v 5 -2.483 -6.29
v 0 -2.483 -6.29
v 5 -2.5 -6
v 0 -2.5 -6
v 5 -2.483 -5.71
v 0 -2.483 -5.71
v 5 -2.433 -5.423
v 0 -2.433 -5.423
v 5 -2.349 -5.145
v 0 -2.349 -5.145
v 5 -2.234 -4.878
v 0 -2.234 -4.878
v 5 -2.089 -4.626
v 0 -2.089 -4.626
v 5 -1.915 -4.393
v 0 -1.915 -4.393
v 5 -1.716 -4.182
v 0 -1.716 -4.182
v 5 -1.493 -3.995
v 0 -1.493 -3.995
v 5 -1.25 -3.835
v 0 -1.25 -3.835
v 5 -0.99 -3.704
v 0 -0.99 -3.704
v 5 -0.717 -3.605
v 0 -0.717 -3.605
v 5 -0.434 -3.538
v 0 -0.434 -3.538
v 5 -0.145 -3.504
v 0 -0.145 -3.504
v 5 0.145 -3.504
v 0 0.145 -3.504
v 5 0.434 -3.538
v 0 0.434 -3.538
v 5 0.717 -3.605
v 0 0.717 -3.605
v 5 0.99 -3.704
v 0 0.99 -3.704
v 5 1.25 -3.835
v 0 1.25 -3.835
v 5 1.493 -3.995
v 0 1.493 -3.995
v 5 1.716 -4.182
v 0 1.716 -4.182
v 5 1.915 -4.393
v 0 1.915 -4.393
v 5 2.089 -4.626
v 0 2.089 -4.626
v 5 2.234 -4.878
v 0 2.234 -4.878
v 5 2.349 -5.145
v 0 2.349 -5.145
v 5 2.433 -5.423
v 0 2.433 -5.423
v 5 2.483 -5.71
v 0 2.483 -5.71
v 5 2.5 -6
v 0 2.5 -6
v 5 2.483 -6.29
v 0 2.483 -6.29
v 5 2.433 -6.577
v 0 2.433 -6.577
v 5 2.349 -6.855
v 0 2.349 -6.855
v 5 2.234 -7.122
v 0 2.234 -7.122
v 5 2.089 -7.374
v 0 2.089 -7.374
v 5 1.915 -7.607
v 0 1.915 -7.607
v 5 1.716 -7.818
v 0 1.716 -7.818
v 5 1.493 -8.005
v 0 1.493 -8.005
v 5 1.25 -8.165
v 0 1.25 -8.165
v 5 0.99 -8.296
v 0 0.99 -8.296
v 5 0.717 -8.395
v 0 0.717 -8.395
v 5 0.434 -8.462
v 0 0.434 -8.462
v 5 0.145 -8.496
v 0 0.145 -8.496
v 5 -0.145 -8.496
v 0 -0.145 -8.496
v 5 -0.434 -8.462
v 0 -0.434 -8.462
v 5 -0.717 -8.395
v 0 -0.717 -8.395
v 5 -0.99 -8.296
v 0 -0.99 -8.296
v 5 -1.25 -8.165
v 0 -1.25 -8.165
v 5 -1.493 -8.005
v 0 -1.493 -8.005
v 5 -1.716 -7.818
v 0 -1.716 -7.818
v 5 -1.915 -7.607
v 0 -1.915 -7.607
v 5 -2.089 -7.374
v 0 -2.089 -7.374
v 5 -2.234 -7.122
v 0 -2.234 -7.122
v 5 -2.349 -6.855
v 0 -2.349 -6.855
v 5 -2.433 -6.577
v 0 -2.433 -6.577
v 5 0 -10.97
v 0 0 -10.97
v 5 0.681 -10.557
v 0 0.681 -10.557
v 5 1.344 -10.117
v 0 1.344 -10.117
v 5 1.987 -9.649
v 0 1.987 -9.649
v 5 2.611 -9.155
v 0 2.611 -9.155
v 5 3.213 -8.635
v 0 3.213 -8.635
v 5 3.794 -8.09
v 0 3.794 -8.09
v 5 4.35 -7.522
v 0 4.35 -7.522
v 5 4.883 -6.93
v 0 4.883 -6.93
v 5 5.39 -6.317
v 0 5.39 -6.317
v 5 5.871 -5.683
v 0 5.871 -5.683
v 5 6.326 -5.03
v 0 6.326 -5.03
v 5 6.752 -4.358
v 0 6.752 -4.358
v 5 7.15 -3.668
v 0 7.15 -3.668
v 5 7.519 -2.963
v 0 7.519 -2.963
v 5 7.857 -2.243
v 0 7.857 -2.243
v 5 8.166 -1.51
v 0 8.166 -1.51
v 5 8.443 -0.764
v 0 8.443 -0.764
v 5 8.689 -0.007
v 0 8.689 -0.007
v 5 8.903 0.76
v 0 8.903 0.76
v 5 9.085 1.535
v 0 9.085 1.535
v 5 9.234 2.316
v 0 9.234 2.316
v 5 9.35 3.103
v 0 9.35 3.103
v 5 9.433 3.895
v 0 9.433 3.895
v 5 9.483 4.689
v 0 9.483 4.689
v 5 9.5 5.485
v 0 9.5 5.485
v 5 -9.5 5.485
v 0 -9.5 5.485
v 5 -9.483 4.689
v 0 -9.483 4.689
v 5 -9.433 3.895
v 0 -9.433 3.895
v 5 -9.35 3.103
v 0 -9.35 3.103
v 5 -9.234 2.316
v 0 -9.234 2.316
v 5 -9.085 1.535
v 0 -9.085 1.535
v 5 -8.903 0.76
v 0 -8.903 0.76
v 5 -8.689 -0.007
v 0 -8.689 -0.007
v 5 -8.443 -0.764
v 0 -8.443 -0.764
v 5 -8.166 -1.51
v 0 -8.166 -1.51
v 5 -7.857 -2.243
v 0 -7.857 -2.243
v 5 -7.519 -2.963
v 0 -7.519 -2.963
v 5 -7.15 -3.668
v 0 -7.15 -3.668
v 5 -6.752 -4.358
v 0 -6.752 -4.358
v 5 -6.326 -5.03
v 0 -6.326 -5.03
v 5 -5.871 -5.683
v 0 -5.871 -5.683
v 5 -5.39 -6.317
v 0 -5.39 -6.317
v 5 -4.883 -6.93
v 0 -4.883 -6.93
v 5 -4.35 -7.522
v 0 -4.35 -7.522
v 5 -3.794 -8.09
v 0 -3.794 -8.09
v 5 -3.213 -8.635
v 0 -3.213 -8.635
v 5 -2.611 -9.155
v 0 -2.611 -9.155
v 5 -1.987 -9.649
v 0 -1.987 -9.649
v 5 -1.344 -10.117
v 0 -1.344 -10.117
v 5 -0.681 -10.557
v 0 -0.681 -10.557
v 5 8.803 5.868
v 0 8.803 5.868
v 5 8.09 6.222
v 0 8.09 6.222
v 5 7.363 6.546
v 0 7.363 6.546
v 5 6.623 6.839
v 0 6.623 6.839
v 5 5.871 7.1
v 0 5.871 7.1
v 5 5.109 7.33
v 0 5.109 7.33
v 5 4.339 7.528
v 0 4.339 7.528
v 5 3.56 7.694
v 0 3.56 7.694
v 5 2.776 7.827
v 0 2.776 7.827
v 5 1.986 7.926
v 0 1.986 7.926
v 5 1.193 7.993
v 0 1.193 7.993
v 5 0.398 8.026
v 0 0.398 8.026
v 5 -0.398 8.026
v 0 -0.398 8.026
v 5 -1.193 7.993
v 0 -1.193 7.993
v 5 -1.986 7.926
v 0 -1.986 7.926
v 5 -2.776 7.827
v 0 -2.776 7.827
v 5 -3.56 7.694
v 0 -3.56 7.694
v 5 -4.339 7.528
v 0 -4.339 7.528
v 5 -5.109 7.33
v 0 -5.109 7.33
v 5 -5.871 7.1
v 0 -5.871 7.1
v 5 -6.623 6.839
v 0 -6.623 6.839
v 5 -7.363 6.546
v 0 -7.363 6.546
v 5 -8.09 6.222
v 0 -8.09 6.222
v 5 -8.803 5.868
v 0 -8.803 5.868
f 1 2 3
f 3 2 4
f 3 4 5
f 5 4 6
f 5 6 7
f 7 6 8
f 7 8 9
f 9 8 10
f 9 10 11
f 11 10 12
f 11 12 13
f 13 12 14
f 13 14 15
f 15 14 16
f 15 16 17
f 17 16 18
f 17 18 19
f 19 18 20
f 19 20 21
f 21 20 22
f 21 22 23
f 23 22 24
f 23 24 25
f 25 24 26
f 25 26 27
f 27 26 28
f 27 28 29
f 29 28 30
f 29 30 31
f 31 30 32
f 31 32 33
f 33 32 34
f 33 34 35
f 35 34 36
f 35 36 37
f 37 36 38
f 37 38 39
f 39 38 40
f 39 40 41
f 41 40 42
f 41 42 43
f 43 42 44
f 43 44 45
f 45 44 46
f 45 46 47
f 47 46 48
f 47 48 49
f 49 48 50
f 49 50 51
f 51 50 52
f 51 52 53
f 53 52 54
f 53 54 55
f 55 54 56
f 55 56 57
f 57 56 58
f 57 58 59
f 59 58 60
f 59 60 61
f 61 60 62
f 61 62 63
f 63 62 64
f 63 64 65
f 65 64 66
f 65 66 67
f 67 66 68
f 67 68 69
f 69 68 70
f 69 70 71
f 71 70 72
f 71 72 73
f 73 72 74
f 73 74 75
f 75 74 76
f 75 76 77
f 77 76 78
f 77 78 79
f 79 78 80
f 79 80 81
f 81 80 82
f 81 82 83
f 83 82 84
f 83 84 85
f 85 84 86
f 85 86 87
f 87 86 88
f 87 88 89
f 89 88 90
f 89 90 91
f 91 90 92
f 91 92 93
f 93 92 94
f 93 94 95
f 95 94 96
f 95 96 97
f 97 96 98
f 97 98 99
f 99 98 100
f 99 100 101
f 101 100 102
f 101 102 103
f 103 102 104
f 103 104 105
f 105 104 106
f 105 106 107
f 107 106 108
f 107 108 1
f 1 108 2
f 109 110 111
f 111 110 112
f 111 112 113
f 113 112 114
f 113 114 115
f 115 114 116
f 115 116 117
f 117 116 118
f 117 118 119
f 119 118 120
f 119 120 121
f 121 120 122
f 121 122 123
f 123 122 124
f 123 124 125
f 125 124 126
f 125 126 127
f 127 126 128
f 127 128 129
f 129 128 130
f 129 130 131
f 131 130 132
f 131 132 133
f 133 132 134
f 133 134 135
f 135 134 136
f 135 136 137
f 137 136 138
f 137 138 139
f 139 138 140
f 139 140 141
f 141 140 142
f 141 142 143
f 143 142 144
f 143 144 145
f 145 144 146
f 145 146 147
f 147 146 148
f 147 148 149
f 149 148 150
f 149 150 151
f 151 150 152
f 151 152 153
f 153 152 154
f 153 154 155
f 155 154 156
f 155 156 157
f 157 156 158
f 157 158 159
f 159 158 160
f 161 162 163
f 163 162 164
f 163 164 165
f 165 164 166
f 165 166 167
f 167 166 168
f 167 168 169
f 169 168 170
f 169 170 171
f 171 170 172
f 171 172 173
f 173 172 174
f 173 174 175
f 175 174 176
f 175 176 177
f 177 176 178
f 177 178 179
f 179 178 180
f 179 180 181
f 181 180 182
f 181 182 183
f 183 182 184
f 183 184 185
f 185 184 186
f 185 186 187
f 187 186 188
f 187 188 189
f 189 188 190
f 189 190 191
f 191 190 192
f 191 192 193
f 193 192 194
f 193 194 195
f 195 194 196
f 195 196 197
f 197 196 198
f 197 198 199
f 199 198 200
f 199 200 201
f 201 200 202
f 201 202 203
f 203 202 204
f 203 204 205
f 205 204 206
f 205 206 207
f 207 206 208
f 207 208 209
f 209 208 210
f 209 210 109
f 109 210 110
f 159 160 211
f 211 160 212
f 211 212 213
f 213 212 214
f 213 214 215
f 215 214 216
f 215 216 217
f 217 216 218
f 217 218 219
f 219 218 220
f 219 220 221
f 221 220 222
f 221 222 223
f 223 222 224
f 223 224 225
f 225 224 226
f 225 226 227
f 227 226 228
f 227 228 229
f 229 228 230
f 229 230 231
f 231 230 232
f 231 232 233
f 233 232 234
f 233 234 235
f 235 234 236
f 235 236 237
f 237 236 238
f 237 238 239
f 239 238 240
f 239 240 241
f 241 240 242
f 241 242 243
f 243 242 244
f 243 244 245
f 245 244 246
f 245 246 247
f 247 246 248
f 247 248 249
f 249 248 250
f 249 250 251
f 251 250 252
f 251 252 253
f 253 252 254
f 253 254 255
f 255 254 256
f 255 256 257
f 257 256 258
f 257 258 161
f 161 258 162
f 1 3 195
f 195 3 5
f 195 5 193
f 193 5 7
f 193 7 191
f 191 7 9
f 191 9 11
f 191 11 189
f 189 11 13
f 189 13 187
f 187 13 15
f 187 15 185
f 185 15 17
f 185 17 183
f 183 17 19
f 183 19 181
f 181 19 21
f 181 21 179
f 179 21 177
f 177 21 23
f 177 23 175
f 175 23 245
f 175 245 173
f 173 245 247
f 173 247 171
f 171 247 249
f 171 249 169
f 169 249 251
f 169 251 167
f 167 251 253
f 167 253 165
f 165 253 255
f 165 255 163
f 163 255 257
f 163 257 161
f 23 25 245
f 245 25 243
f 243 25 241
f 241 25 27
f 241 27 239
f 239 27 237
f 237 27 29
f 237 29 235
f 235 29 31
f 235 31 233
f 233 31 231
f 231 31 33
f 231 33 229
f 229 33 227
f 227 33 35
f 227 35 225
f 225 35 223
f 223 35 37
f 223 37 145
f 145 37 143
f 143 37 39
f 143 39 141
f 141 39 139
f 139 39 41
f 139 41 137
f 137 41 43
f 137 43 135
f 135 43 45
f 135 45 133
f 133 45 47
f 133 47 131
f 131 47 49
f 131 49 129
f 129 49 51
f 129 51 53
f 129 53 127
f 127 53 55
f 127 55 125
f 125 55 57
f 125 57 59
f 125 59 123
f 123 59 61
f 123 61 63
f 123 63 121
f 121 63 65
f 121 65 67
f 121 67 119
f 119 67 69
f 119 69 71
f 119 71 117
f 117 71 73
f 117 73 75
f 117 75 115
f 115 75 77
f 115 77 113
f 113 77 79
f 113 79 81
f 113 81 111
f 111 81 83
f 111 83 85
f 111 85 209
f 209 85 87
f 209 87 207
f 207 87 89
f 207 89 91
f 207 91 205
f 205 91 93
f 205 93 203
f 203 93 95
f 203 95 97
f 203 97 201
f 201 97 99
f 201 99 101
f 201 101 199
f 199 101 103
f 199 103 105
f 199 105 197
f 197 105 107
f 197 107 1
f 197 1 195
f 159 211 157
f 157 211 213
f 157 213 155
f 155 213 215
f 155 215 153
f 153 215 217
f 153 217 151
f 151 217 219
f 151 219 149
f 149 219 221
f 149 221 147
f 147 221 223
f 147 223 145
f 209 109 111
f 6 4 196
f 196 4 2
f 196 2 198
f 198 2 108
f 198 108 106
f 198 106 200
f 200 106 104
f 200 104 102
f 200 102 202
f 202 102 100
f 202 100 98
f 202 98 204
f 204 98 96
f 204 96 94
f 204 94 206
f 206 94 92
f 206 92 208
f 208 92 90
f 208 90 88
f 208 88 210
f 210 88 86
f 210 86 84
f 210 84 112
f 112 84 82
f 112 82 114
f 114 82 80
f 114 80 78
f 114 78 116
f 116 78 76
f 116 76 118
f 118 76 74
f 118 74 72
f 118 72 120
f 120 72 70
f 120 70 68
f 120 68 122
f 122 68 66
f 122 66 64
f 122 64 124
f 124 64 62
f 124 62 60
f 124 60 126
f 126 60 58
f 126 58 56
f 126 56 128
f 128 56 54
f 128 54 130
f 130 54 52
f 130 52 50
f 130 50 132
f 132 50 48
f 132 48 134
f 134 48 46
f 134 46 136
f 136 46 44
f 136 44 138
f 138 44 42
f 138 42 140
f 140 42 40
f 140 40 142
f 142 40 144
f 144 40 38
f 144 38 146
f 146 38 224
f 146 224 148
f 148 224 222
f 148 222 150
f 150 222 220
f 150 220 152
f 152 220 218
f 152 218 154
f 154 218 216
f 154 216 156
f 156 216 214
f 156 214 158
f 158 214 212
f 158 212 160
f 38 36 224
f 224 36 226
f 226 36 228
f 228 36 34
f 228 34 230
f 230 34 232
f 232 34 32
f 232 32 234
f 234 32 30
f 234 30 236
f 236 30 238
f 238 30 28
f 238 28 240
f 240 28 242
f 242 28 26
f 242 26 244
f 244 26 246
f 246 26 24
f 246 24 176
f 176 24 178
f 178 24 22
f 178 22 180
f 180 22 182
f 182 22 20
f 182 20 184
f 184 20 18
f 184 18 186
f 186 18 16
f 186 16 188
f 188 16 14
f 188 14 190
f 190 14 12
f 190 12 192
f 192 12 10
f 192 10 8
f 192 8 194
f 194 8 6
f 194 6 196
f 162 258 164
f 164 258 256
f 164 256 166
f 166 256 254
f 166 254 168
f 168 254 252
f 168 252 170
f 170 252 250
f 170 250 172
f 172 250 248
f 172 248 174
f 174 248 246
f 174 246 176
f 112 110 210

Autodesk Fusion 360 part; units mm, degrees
sketch "Excentric Triunghiular Ruleaux + Frame-ul cadrului culisant" plane through (0, 0, 0) normal (1, 0, 0) x (0, 1, 0)
  line L0 (-9.5, 5.4848) -> (0, -10.9697) construction
  line L1 (0, -10.9697) -> (9.5, 5.4848) construction
  line L2 (9.5, 5.4848) -> (-9.5, 5.4848) construction
  arc A0 (0, -10.9697) -> (9.5, 5.4848) centre (-9.5, 5.4848) ccw
  arc A1 (-9.5, 5.4848) -> (0, -10.9697) centre (9.5, 5.4848) ccw
  arc A2 (9.5, 5.4848) -> (-9.5, 5.4848) centre (0, -10.9697) ccw
  circle A3 centre (0, -6) radius 2.5
  line L3 (-17.5, 8.0303) -> (17.5, 8.0303)
  line L4 (17.5, 8.0303) -> (17.5, -10.9697)
  line L5 (17.5, -10.9697) -> (-17.5, -10.9697)
  line L6 (-17.5, -10.9697) -> (-17.5, 8.0303)
  line L7 (0, 8.0303) -> (0, -10.9697) construction
  line L8 (20, -13.4697) -> (-20, -13.4697)
  line L9 (-20, -13.4697) -> (-20, 10.5303)
  line L10 (-20, 10.5303) -> (20, 10.5303)
  line L11 (20, 10.5303) -> (20, -13.4697)
  line L12 (17.5, -1.4697) -> (0, -1.4697) construction
  dimension "d4" = 19
  dimension "d5" = 5
  dimension "d6" = 35
  dimension "d7" = 19
  dimension "d8" = 6
  dimension "d9" = 17.5
  dimension "d10" = -2.5
extrude "Extrude1" add sketch "Excentric Triunghiular Ruleaux + Frame-ul cadrului culisant" along normal blind 5 contours A0 A1 A2
equation "d9 = ( 35 / 2 ) * 1 mm"
